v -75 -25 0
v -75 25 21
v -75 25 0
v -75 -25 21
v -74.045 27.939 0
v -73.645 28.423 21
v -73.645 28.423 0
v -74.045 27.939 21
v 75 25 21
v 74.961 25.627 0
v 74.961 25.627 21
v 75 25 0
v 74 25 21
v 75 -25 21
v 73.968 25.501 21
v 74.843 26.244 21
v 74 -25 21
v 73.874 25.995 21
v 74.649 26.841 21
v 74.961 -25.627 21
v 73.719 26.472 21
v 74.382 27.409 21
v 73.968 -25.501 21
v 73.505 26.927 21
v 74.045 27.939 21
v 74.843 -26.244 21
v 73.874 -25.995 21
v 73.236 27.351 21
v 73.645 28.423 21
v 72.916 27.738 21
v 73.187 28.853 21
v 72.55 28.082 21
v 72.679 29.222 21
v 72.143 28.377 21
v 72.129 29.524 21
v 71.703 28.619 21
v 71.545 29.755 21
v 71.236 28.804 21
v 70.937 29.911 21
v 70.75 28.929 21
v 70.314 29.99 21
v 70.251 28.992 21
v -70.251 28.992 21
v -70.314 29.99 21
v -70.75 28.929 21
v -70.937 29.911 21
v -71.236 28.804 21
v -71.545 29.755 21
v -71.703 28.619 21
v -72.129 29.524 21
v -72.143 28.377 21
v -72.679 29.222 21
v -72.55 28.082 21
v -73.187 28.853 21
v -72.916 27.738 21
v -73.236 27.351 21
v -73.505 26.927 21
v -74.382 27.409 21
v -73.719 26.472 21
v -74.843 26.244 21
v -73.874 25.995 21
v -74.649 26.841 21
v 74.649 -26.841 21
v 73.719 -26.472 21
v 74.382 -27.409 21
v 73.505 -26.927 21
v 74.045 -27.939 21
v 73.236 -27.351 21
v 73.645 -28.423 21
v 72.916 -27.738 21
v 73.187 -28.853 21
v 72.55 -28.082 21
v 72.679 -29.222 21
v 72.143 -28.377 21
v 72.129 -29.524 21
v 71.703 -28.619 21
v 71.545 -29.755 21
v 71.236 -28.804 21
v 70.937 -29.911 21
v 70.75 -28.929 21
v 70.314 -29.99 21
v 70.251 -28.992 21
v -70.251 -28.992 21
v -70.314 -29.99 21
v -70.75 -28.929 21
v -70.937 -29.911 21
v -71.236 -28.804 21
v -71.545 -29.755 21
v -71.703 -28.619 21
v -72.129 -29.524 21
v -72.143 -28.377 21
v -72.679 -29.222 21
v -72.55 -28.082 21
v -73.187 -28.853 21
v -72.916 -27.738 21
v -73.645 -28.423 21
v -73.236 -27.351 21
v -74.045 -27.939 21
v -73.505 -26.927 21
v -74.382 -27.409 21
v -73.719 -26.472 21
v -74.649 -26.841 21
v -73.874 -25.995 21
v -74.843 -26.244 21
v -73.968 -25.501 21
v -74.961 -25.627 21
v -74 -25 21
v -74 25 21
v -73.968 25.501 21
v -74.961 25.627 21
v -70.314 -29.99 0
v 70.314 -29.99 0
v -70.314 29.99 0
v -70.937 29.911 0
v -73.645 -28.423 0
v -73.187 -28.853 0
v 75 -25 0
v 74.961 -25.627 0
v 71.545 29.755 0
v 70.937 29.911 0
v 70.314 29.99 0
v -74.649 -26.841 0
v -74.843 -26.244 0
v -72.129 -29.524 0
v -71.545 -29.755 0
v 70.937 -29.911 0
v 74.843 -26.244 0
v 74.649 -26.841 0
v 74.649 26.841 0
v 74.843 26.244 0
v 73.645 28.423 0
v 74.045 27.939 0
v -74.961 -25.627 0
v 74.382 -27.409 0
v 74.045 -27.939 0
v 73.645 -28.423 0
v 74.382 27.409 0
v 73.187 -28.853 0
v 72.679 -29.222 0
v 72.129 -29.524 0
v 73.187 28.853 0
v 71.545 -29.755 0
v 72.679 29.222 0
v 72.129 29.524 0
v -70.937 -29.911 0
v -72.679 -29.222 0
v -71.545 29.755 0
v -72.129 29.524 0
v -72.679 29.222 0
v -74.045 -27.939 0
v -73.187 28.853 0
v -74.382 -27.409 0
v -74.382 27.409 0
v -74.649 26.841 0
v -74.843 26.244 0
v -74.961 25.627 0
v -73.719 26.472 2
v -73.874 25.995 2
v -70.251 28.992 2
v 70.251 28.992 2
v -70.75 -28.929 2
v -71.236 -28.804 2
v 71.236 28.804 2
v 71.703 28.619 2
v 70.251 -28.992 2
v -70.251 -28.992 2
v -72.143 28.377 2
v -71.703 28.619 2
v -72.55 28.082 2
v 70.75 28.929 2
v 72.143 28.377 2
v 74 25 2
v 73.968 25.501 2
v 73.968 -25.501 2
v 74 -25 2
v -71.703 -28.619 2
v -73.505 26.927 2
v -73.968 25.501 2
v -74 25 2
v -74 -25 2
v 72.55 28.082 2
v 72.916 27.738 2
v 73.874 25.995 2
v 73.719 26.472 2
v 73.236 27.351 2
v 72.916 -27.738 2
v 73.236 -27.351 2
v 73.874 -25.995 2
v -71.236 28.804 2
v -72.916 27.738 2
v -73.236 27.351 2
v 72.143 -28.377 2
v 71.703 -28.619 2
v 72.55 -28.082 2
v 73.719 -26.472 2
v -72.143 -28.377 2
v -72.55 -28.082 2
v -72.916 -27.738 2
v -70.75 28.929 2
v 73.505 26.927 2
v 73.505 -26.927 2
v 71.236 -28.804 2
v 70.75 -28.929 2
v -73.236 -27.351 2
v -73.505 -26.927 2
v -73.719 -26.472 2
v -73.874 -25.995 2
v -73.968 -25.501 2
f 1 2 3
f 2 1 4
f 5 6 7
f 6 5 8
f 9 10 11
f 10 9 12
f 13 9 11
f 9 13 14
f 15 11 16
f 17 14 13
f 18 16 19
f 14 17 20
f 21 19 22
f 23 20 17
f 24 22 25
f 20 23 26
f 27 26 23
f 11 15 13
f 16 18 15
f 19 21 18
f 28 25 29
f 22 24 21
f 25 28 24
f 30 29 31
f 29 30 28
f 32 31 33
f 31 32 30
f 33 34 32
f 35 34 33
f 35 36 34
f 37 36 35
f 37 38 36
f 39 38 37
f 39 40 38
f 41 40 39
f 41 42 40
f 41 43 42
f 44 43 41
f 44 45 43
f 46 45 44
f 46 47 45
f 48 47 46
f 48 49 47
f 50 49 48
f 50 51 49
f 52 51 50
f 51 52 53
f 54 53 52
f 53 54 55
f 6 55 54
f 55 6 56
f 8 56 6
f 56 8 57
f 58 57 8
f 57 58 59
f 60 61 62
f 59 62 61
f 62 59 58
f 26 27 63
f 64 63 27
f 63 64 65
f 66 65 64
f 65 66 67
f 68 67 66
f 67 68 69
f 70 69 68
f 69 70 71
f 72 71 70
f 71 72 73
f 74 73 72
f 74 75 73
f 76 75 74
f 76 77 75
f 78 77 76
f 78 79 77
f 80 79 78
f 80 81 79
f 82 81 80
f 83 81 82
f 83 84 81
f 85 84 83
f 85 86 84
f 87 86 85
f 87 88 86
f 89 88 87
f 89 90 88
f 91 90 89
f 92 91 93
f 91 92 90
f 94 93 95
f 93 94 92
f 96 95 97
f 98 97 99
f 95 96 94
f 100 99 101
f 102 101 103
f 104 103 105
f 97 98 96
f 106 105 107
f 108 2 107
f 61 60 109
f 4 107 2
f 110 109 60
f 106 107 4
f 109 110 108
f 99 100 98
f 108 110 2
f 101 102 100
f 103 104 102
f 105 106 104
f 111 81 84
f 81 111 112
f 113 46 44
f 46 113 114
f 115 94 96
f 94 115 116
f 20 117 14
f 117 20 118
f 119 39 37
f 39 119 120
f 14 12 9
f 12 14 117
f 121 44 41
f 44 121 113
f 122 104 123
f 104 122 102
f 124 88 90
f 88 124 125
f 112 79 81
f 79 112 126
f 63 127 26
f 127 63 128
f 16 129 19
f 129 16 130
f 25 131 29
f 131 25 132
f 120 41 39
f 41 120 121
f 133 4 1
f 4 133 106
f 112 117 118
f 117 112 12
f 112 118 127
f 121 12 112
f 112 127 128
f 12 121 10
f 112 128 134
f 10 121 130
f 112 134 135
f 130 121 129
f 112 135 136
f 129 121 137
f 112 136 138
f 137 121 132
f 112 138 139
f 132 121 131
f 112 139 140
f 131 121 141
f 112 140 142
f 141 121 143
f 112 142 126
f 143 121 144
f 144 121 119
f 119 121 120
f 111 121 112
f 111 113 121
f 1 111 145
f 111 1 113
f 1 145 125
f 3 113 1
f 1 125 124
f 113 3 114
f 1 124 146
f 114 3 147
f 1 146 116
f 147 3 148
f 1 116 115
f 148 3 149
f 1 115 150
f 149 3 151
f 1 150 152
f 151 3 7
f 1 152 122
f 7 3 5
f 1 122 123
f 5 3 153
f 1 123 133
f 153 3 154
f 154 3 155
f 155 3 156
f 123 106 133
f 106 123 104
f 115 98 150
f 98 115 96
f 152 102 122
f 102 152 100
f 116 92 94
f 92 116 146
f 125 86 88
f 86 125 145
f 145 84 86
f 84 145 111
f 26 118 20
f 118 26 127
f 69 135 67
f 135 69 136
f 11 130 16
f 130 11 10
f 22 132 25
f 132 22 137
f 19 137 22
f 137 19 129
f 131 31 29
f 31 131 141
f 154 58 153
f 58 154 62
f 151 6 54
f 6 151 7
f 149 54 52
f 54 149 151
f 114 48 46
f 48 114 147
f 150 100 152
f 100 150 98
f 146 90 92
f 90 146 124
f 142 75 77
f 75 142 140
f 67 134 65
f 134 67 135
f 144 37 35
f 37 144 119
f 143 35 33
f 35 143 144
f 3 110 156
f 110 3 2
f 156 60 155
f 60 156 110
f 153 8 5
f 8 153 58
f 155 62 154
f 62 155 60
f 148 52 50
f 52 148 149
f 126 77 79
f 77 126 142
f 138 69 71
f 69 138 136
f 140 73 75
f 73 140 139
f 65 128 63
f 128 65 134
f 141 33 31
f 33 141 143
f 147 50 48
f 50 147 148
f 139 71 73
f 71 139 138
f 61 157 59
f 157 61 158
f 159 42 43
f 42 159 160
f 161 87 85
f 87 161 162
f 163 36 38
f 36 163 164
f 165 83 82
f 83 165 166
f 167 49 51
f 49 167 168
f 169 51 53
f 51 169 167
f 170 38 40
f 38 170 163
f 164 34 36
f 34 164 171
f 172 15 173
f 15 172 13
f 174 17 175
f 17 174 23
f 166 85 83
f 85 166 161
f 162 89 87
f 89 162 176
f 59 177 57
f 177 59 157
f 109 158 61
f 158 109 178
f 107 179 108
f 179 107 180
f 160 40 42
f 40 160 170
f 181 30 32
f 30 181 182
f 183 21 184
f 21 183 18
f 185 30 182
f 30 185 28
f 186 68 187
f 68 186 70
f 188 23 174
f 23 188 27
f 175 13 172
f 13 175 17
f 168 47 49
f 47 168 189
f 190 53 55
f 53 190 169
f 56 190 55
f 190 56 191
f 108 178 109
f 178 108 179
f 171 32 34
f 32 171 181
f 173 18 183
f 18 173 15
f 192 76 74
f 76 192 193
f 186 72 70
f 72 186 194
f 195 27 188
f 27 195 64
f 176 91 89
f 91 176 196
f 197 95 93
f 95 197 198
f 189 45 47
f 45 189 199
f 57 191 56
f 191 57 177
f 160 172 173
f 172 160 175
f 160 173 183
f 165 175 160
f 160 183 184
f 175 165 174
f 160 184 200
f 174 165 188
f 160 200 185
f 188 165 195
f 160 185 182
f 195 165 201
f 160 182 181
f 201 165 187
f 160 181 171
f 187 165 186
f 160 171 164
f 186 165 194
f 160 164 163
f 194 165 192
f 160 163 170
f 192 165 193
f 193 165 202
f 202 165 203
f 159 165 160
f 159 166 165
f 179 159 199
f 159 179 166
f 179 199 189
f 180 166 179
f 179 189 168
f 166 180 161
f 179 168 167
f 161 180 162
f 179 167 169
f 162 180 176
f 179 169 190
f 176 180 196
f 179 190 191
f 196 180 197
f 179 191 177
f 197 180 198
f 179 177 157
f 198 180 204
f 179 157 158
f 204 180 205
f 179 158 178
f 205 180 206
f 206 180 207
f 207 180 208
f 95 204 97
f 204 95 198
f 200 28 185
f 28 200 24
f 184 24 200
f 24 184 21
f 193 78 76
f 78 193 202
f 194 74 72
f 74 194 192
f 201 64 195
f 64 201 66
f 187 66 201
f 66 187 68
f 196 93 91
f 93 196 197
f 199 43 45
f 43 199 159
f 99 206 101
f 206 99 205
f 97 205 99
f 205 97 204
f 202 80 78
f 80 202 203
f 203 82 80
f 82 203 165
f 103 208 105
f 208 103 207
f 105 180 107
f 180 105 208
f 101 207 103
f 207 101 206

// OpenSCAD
$fn = 50;


difference() {
	union() {
		hull() {
			translate(v = [-70.0000000000, 25.0000000000, 0]) {
				cylinder(h = 21, r = 5);
			}
			translate(v = [70.0000000000, 25.0000000000, 0]) {
				cylinder(h = 21, r = 5);
			}
			translate(v = [-70.0000000000, -25.0000000000, 0]) {
				cylinder(h = 21, r = 5);
			}
			translate(v = [70.0000000000, -25.0000000000, 0]) {
				cylinder(h = 21, r = 5);
			}
		}
	}
	union() {
		translate(v = [0, 0, 2]) {
			hull() {
				translate(v = [-70.0000000000, 25.0000000000, 0]) {
					cylinder(h = 19, r = 4);
				}
				translate(v = [70.0000000000, 25.0000000000, 0]) {
					cylinder(h = 19, r = 4);
				}
				translate(v = [-70.0000000000, -25.0000000000, 0]) {
					cylinder(h = 19, r = 4);
				}
				translate(v = [70.0000000000, -25.0000000000, 0]) {
					cylinder(h = 19, r = 4);
				}
			}
		}
	}
}
